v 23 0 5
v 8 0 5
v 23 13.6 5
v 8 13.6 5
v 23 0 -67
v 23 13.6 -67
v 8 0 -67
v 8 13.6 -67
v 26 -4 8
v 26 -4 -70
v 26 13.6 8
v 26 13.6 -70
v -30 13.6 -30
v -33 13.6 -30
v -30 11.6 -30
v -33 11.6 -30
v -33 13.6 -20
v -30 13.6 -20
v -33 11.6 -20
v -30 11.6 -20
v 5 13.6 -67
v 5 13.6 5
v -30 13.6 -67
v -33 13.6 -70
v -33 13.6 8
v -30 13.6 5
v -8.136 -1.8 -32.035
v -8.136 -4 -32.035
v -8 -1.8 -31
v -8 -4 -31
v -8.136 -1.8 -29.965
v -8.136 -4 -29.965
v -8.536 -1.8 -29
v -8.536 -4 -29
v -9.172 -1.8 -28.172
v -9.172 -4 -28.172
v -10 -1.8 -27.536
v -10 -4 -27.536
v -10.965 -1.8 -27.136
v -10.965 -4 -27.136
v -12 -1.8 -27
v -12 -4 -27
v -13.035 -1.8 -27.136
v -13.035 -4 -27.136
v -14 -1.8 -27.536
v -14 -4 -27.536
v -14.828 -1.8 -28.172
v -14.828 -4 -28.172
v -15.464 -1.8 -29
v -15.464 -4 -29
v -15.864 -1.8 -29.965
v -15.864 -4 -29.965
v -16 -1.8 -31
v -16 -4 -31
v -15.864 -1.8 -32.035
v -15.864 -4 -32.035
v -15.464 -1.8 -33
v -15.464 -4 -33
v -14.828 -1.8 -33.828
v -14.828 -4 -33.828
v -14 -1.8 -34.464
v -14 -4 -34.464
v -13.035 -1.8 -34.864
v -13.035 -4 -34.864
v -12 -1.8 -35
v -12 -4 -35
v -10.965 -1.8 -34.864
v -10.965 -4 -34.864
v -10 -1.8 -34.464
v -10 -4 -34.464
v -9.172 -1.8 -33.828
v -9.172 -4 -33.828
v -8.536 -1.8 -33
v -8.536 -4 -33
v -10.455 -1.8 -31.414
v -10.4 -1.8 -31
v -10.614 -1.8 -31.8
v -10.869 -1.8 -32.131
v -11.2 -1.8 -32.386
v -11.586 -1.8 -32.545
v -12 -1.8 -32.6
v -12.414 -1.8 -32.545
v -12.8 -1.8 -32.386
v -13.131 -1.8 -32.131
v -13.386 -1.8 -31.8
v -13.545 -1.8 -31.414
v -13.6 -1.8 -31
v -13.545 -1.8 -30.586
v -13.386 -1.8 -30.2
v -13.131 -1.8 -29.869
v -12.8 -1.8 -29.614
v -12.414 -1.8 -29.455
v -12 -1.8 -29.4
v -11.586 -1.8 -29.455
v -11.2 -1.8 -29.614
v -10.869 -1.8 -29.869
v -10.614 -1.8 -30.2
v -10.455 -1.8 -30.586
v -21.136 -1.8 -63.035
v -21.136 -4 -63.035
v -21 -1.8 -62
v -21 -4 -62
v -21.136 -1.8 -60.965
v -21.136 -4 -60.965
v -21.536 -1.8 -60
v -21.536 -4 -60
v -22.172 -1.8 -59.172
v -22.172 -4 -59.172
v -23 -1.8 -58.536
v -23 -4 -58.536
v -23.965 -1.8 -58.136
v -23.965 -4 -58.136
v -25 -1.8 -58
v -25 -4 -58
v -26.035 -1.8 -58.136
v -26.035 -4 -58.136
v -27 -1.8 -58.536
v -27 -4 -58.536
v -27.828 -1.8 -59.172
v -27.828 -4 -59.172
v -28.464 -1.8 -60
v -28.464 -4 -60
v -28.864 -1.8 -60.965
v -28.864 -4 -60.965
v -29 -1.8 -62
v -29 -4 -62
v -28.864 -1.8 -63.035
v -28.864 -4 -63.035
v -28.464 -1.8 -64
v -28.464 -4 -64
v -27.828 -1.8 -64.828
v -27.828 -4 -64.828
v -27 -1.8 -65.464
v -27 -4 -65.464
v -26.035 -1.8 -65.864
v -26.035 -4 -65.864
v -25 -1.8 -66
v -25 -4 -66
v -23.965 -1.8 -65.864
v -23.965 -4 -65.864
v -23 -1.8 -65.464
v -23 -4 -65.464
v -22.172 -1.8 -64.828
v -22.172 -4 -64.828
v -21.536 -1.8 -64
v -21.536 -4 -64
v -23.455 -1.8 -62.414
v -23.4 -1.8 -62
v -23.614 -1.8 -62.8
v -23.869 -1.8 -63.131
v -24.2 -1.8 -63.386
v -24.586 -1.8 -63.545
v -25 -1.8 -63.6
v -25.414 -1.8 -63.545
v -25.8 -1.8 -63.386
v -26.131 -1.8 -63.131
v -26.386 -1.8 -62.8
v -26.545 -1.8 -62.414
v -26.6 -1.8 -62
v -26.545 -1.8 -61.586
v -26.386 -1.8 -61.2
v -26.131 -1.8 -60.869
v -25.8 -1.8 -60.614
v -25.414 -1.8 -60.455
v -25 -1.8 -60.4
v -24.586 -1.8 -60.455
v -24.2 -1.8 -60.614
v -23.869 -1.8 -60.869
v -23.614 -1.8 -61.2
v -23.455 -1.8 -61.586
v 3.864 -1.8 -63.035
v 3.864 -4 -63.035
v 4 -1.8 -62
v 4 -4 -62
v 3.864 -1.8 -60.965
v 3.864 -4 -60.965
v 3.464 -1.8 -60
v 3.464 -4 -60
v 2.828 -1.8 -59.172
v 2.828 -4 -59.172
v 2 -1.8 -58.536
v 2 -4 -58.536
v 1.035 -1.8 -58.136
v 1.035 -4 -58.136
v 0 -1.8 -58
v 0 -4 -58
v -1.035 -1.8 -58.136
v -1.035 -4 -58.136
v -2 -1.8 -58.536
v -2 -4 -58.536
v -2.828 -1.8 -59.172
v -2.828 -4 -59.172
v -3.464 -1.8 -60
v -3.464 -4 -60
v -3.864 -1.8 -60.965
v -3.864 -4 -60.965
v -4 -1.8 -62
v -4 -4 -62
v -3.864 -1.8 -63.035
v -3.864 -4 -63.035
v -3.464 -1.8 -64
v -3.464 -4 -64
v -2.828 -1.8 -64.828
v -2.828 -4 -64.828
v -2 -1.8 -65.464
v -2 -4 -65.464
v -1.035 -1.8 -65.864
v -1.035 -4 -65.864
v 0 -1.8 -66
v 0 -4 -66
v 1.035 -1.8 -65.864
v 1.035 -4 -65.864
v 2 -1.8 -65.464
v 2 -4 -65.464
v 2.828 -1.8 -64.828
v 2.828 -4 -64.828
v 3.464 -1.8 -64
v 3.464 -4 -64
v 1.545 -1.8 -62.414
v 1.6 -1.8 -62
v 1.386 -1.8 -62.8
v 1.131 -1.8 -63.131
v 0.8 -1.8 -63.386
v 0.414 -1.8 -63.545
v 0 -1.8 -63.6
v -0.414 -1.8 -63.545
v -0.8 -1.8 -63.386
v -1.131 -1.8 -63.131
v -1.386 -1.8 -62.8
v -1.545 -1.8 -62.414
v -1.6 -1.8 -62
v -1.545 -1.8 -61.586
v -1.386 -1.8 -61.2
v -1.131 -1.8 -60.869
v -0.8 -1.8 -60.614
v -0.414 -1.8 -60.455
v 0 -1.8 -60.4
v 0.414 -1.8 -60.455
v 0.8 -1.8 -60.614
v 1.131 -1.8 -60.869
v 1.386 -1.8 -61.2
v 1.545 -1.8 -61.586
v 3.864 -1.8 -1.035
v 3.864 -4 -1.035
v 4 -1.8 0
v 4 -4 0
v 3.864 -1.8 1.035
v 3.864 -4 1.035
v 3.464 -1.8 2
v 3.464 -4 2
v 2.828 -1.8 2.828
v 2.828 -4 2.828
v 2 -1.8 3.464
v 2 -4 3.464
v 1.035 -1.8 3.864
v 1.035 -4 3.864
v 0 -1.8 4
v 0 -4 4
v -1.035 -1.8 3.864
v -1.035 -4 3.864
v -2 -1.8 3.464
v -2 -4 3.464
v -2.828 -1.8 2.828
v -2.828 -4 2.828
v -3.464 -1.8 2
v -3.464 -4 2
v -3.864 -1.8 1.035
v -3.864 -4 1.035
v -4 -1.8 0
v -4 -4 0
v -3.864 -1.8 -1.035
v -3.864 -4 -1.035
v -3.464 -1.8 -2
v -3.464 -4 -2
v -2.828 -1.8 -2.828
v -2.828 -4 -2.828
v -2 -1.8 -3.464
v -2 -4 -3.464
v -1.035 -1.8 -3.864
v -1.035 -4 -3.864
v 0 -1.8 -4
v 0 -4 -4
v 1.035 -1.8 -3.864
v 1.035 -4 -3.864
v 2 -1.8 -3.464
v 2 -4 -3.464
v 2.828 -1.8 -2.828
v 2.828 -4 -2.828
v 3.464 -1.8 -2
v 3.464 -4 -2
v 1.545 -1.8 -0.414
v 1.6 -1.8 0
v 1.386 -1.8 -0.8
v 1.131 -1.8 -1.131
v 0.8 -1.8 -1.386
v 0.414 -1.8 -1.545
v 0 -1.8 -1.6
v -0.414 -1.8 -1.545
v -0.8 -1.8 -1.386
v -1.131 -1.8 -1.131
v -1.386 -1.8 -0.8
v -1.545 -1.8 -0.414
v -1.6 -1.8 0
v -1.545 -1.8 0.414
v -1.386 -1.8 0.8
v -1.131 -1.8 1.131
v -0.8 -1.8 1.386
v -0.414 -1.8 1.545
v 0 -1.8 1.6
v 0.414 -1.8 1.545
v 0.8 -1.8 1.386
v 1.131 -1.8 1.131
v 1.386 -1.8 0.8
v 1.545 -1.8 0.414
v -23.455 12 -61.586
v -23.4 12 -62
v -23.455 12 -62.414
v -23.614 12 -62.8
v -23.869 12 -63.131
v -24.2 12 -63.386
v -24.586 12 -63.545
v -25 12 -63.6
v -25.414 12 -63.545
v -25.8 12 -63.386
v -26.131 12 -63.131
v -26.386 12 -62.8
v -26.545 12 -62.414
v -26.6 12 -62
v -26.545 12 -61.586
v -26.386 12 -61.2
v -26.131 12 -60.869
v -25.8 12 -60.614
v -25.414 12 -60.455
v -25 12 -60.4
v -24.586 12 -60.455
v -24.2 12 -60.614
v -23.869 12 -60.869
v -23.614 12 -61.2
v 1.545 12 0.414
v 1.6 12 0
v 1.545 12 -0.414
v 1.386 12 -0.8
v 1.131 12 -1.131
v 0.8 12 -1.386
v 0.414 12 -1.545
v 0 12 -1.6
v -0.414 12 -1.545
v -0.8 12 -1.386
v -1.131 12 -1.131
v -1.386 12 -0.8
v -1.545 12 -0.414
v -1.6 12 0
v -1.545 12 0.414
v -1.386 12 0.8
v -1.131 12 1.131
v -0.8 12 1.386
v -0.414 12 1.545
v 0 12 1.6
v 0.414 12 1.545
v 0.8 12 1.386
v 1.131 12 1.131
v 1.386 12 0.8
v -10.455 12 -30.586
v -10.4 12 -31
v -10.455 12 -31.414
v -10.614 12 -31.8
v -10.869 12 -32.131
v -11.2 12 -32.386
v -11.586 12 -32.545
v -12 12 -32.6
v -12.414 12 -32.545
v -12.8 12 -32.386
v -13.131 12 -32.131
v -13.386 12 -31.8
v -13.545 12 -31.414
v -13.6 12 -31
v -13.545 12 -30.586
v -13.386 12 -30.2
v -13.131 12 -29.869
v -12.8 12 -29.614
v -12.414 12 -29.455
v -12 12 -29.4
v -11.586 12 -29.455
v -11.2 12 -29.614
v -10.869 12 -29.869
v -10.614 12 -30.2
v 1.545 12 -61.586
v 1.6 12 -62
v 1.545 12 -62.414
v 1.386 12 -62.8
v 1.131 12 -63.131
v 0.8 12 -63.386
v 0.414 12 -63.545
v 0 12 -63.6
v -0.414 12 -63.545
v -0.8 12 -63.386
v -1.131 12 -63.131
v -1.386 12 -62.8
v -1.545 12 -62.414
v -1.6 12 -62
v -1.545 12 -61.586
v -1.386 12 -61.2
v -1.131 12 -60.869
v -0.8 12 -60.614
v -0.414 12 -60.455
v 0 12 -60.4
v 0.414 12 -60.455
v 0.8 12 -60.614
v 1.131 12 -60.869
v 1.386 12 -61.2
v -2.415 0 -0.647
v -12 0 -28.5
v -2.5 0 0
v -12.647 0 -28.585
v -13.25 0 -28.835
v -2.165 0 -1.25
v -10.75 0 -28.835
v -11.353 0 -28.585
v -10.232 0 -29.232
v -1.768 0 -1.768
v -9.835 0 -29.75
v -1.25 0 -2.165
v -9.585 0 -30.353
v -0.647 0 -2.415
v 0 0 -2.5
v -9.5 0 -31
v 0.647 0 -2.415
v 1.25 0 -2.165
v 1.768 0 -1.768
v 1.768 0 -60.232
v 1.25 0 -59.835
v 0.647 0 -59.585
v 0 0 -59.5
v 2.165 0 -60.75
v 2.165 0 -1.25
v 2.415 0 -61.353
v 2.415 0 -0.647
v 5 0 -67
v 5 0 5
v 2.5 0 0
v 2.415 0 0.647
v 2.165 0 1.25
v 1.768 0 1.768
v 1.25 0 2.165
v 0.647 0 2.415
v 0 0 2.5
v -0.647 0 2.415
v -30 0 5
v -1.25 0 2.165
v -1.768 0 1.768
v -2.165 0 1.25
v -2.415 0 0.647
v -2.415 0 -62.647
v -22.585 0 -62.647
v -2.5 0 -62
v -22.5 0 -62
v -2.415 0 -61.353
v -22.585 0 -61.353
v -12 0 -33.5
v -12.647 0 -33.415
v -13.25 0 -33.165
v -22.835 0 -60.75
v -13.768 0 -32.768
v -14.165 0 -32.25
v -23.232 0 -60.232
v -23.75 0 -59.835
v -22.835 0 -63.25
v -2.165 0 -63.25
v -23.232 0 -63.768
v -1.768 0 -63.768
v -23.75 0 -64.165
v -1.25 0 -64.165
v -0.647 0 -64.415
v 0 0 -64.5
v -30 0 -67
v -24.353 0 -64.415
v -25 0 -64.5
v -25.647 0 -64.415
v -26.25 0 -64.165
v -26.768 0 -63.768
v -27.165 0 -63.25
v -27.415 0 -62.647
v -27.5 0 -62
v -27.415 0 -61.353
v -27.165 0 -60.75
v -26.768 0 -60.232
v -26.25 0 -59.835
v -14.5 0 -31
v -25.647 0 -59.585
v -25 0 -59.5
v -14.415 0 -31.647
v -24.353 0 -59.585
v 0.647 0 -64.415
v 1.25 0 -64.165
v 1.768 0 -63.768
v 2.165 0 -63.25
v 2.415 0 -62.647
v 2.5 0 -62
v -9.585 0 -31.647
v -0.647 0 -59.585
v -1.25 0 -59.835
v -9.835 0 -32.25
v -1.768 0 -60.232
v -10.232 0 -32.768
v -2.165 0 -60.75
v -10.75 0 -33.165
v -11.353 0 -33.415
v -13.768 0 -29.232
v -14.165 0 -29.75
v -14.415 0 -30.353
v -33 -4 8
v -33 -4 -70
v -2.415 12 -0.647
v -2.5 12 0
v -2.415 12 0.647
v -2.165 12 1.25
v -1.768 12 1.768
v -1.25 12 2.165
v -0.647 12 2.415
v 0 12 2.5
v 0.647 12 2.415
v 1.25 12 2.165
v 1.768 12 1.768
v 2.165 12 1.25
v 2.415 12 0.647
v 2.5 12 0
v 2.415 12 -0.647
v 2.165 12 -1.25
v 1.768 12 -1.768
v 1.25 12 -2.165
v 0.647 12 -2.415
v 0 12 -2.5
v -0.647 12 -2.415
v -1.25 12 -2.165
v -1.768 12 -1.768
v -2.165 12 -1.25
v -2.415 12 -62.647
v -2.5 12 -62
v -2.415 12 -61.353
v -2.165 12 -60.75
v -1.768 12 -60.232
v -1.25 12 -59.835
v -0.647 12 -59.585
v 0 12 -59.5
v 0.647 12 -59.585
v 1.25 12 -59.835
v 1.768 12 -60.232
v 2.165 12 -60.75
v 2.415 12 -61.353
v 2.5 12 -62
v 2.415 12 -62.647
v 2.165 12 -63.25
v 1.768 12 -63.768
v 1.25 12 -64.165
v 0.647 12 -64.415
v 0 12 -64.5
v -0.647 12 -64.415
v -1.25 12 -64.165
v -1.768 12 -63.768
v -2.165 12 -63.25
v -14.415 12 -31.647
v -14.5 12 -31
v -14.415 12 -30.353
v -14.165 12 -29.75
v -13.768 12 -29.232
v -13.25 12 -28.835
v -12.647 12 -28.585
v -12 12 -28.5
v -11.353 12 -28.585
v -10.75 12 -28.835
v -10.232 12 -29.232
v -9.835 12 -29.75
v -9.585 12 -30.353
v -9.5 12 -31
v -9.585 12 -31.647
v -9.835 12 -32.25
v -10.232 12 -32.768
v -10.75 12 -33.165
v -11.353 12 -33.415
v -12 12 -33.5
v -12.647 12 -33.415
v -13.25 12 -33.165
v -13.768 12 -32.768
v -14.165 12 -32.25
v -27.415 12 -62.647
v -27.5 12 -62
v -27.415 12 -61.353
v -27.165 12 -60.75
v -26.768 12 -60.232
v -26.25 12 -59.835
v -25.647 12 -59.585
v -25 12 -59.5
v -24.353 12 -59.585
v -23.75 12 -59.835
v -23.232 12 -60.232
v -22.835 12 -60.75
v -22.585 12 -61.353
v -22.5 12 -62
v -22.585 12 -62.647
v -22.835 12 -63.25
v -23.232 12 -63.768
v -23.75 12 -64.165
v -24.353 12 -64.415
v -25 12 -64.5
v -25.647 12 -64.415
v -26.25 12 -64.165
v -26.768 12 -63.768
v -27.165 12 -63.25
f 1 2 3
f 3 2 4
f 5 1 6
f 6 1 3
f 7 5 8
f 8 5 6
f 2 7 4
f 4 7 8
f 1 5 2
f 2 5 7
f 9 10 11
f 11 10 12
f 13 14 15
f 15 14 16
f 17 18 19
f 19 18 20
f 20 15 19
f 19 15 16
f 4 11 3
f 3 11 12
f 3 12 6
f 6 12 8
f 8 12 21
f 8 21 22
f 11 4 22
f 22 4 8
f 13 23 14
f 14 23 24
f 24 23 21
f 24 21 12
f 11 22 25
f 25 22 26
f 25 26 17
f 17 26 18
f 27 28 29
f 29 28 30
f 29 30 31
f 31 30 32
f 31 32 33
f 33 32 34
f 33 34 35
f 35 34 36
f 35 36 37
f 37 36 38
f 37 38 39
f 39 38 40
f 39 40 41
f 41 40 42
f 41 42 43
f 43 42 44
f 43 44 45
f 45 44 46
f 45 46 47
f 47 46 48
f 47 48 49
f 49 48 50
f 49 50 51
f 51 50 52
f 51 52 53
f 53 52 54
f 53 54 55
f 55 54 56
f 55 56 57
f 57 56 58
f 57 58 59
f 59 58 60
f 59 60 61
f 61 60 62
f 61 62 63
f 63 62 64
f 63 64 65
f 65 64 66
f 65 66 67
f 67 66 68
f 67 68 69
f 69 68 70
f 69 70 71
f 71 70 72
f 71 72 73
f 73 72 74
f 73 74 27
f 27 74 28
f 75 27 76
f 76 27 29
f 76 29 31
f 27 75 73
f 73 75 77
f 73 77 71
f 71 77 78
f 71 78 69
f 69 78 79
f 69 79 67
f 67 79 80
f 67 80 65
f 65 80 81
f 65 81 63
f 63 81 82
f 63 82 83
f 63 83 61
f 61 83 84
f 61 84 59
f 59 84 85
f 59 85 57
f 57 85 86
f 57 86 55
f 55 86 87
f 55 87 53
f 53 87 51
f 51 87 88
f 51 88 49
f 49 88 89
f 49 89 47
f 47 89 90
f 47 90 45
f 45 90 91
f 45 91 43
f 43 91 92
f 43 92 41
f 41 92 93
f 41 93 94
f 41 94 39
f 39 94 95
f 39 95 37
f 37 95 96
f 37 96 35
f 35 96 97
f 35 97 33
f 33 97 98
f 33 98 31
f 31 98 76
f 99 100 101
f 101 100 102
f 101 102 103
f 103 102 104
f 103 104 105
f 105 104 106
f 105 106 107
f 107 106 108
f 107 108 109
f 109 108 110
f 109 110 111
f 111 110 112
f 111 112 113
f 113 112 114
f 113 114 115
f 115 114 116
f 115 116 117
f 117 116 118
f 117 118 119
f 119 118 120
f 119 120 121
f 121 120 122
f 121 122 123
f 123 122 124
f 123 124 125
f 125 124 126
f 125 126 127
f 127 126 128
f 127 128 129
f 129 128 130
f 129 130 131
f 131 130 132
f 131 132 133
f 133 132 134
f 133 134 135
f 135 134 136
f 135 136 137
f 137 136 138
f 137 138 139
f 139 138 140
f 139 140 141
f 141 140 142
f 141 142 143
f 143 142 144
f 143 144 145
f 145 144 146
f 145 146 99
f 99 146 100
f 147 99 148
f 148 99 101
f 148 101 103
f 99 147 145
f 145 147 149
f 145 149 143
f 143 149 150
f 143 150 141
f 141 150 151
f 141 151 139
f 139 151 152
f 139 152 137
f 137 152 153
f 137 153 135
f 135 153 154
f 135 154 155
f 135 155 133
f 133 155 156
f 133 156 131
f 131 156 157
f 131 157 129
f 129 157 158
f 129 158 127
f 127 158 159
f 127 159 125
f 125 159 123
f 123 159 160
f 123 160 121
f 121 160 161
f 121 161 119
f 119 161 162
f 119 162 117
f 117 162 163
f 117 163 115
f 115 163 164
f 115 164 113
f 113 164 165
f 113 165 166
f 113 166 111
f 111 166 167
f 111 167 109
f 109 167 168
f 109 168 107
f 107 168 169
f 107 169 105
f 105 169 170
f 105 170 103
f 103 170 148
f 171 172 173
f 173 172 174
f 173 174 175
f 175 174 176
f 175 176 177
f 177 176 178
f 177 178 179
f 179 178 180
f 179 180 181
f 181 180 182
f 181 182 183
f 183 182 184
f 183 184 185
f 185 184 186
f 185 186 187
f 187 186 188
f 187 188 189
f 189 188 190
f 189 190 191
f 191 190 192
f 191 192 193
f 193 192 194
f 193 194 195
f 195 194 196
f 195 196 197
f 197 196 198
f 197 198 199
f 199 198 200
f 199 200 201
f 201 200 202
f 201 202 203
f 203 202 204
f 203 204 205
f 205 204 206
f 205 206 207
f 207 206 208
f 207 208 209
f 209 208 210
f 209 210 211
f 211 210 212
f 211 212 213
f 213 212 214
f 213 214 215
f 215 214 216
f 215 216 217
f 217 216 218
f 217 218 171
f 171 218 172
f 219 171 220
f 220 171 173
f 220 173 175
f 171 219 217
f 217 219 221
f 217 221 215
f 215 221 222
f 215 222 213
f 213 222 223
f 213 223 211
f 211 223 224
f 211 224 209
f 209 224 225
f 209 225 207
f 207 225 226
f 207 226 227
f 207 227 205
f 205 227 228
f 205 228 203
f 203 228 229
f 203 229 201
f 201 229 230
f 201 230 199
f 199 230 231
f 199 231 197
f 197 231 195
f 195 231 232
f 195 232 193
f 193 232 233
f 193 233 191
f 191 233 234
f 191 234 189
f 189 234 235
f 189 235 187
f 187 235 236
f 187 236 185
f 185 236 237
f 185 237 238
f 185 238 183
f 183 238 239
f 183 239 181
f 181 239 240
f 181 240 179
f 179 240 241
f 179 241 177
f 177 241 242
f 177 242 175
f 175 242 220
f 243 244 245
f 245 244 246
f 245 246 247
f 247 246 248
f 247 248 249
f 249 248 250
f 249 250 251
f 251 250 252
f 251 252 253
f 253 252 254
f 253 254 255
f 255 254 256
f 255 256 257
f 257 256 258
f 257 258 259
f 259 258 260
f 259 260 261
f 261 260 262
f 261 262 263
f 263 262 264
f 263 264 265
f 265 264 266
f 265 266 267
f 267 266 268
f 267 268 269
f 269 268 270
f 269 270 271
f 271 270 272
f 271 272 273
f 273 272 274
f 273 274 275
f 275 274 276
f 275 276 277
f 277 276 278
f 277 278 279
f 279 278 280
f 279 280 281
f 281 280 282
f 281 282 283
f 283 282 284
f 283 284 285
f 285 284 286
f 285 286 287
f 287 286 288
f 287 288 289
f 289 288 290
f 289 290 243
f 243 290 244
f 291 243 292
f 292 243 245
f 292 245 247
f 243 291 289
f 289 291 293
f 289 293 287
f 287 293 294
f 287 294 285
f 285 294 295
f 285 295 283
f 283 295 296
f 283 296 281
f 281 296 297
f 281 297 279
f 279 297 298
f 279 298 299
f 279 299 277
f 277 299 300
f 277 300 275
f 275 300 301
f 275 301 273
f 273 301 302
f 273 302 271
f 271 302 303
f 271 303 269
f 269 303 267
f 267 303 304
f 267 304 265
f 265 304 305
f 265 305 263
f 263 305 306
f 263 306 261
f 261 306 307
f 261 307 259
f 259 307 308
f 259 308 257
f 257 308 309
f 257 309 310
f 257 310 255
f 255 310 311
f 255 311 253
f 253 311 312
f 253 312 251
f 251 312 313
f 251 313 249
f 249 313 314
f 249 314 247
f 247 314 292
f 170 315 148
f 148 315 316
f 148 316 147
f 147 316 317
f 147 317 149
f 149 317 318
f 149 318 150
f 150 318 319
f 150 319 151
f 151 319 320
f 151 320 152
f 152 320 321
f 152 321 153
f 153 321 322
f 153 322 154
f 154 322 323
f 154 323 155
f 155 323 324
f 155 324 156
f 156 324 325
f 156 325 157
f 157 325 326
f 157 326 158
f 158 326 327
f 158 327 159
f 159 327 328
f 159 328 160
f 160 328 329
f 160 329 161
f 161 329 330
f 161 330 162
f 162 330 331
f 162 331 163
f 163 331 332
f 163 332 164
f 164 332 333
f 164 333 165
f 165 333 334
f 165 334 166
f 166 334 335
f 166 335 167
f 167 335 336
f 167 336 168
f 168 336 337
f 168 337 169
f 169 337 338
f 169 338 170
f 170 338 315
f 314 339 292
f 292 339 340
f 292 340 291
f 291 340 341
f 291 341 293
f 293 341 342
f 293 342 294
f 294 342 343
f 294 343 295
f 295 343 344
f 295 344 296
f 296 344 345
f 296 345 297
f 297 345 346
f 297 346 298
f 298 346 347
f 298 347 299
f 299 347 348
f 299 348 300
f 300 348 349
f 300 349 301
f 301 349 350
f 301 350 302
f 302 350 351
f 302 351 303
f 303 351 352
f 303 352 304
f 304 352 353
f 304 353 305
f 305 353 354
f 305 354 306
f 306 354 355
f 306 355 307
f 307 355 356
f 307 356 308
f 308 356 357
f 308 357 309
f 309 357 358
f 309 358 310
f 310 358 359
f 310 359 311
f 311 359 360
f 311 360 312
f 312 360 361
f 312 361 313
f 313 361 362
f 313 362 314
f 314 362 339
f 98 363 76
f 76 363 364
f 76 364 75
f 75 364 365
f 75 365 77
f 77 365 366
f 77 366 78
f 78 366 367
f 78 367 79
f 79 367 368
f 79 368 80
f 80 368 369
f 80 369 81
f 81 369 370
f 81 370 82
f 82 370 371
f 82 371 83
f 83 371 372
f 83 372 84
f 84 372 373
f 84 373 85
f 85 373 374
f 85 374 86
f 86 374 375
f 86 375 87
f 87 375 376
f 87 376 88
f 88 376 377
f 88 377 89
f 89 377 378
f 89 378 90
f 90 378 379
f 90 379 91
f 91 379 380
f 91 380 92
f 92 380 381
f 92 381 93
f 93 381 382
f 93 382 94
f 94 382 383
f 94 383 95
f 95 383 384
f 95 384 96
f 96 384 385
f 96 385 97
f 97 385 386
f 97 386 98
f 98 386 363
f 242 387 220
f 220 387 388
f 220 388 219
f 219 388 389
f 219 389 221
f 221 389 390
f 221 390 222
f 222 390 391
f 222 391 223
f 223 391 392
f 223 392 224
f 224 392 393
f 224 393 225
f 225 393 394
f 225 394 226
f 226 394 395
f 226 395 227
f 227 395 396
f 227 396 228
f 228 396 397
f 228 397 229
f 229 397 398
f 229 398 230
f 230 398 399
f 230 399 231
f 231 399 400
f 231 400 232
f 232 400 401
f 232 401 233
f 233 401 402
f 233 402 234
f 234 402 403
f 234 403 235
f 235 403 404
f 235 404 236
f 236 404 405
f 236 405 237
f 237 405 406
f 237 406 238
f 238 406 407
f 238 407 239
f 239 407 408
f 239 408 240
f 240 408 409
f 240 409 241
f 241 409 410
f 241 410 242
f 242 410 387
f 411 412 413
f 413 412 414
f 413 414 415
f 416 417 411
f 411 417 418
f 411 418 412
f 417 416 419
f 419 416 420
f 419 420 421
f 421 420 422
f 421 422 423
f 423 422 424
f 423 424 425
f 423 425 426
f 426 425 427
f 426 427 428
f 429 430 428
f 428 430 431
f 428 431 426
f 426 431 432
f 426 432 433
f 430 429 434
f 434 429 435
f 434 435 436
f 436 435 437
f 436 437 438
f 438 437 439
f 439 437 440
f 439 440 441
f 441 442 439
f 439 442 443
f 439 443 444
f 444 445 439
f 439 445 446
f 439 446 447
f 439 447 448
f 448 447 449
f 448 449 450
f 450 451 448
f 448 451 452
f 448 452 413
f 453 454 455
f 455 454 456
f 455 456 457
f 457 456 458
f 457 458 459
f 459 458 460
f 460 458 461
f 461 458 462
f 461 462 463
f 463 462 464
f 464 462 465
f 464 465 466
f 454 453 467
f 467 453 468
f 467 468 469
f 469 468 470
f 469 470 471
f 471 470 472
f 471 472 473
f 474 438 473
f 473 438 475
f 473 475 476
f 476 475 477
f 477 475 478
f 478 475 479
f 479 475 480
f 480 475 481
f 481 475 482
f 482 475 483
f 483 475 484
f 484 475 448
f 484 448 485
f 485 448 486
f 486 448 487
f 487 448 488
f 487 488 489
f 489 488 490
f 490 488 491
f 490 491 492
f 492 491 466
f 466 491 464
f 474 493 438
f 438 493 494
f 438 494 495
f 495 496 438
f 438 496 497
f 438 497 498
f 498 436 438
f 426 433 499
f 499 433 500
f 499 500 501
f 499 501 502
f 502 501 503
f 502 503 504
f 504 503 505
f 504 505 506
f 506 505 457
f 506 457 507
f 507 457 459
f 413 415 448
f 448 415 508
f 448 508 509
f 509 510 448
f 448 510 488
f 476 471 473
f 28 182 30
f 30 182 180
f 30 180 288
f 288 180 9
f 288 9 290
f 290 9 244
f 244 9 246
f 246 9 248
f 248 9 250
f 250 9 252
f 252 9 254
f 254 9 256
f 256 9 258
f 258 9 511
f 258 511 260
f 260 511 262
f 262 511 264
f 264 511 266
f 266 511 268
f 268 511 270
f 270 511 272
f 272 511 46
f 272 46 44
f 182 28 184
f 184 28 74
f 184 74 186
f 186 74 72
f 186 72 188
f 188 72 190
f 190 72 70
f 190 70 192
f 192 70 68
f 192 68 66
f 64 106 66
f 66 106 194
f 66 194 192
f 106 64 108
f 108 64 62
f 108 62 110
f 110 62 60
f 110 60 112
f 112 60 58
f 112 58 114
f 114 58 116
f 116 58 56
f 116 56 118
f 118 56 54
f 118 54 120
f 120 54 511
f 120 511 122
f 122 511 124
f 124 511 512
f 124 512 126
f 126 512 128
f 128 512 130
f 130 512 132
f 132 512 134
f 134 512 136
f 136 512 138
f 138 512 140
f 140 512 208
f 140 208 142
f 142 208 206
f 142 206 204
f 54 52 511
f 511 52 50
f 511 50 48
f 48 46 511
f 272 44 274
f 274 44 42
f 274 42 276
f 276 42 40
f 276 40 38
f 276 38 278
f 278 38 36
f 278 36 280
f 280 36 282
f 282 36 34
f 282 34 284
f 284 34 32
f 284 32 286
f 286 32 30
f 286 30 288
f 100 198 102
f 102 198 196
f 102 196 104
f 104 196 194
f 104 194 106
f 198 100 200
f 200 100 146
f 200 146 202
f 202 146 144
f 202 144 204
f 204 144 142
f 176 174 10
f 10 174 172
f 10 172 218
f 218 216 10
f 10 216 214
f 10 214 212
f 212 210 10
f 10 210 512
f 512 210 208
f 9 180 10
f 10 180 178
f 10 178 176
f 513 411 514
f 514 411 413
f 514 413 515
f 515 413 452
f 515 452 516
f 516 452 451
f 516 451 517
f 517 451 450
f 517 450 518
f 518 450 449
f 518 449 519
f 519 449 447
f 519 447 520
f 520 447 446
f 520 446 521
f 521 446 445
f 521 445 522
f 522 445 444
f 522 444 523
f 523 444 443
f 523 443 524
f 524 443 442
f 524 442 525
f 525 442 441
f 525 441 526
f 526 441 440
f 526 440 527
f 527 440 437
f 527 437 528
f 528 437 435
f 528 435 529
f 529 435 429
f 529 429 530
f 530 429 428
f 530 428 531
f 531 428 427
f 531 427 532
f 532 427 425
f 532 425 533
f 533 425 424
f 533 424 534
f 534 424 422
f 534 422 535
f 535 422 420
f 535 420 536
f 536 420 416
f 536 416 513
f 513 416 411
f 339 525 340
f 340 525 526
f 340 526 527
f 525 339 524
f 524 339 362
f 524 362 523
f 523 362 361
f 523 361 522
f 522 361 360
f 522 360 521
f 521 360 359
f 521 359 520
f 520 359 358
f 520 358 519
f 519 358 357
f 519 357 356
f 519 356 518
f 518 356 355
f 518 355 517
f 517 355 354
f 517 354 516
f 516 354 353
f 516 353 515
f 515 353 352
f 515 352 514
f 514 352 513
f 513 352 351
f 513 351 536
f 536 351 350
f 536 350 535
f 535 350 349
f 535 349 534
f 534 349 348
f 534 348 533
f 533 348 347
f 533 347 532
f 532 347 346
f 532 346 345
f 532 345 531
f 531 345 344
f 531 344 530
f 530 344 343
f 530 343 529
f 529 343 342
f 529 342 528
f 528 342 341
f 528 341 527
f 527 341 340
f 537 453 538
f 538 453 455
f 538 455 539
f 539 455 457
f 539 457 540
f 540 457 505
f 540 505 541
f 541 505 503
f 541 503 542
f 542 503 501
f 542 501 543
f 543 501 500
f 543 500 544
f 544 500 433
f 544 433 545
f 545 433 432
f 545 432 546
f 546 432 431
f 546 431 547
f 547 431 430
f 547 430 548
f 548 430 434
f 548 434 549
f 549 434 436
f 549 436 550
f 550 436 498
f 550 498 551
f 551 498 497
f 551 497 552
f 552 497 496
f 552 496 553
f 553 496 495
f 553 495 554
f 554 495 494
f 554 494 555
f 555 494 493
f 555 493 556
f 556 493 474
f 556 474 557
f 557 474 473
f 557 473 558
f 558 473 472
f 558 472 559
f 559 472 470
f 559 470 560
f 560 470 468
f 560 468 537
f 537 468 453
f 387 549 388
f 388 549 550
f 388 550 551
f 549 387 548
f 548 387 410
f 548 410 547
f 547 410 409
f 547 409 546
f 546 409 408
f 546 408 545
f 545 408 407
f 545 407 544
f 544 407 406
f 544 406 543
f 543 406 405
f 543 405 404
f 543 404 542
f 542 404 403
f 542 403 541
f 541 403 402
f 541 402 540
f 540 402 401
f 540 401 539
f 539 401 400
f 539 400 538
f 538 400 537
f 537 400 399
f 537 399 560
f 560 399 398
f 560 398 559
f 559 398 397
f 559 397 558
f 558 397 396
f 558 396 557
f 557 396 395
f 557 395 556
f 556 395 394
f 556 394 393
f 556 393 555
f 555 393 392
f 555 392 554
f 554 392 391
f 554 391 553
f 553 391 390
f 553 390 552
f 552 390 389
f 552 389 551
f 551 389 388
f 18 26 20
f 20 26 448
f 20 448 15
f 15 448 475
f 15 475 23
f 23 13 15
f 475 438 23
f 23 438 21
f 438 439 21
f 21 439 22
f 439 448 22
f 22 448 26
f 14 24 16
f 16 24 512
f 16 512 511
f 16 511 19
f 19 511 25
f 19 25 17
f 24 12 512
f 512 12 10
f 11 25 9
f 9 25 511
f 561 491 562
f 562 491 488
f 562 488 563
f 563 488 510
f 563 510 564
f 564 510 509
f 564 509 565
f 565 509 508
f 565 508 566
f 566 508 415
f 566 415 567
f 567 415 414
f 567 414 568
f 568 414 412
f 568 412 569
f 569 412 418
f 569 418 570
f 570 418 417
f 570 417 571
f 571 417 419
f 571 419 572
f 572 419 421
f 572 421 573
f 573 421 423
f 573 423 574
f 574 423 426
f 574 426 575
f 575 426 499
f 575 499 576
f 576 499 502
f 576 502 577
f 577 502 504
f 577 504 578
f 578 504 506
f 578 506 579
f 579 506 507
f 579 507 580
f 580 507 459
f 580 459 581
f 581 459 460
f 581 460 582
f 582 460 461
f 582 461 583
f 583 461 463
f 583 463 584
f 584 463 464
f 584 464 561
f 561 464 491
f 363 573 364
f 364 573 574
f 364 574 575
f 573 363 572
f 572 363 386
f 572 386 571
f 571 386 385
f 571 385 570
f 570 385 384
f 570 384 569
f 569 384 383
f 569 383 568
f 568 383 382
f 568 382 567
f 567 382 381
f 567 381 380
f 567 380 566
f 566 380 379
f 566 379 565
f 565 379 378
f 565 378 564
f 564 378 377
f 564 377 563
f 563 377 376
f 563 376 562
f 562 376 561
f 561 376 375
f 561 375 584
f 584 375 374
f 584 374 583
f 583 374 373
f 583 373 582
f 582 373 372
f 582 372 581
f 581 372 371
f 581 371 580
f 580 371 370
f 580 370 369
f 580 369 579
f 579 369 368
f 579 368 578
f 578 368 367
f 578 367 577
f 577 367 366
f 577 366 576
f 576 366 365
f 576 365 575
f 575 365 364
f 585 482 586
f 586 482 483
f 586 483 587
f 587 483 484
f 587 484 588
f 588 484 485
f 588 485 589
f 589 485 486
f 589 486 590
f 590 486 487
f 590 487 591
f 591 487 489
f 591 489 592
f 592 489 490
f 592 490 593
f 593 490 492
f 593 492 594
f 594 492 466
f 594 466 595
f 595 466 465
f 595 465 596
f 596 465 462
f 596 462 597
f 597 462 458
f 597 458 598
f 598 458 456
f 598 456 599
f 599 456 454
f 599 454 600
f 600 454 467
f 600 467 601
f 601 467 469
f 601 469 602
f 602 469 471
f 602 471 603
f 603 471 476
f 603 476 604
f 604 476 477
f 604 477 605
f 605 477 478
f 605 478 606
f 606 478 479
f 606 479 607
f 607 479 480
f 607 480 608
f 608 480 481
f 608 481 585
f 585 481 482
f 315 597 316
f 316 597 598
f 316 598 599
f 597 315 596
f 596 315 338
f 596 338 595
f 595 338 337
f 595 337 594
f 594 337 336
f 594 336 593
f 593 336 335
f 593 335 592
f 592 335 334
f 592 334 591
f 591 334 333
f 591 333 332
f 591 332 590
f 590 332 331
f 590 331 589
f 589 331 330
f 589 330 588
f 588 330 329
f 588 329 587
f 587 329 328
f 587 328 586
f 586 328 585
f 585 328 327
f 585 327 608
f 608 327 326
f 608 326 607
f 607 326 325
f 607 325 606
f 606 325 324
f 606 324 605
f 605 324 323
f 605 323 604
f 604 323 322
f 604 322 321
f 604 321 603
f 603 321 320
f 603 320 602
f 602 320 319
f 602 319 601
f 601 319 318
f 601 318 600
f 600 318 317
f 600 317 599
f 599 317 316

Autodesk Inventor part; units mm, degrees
ref_plane "YZ Plane" through (0, 0, 0) normal (1, 0, 0) x (0, 1, 0)
ref_plane "XZ Plane" through (0, 0, 0) normal (0, 1, 0) x (-1, 0, 0)
ref_plane "XY Plane" through (0, 0, 0) normal (0, 0, 1) x (1, 0, 0)
sketch "Sketch1" plane through (0, 0, 0) normal (0, 1, 0) x (-1, 0, 0)
  circle A0 centre (0, 0) radius 1.6
  circle A1 centre (0, -62) radius 1.6
  circle A2 centre (25, -62) radius 1.6
  circle A3 centre (12, -31) radius 1.6
  circle A4 centre (12, -31) radius 2.5
  circle A5 centre (0, -62) radius 2.5
  circle A6 centre (25, -62) radius 2.5
  circle A7 centre (0, 0) radius 2.5
  line L0 (30, 5) -> (-5, 5)
  line L1 (-5, 5) -> (-5, -67)
  line L2 (-5, -67) -> (30, -67)
  line L3 (30, -67) -> (30, 5)
  line L4 (33, 8) -> (-8, 8)
  line L5 (-8, 8) -> (-8, -70)
  line L6 (-8, -70) -> (33, -70)
  line L7 (33, -70) -> (33, 8)
  dimension "d0" = 3.2
  dimension "d1" = 3.2
  dimension "d2" = 62
  dimension "d3" = 3.2
  dimension "d4" = 25
  dimension "d5" = 3.2
  dimension "d6" = 31
  dimension "d7" = 12
  dimension "d8" = 5
  dimension "d9" = 5
  dimension "d10" = 5
  dimension "d11" = 5
  dimension "d12" = 5
  dimension "d13" = 5
  dimension "d14" = 5
  dimension "d15" = 5
  dimension "d16" = 3
  dimension "d17" = 3
  dimension "d18" = 3
  dimension "d19" = 3
  dimension "d29" = 0
extrude "Extrusion1" add sketch "Sketch1" along normal blind 12
sketch "Sketch2" plane through (0, 0, 0) normal (0, -1, 0) x (1, 0, 0)
  line L0 (-33, 8) -> (8, 8) projected
  line L1 (-33, -70) -> (-33, 8) projected
  line L2 (8, 8) -> (-33, 8)
  line L3 (-33, 8) -> (-33, -70)
  line L4 (-33, -70) -> (8, -70)
  line L5 (8, -70) -> (8, 8)
  point P0 (0, 0)
extrude "Extrusion2" add sketch "Sketch2" along normal blind 4
sketch "Sketch3" plane through (0, 12, 0) normal (0, 1, 0) x (1, 0, 0)
  circle A0 centre (0, 0) radius 1.6 projected
  circle A1 centre (-12, 31) radius 1.6 projected
  circle A2 centre (-25, 62) radius 1.6 projected
  circle A3 centre (0, 62) radius 1.6 projected
extrude "Extrusion3" cut sketch "Sketch3" against normal up to next
sketch "Sketch4" plane through (0, -4, 0) normal (0, -1, 0) x (1, 0, 0)
  circle A0 centre (-25, -62) radius 1.6 projected
  circle A1 centre (-25, -62) radius 4
  circle A2 centre (0, -62) radius 1.6 projected
  circle A3 centre (0, -62) radius 4
  circle A4 centre (-12, -31) radius 1.6 projected
  circle A5 centre (-12, -31) radius 4
  circle A6 centre (0, 0) radius 1.6 projected
  circle A7 centre (0, 0) radius 4
  dimension "d26" = 8
  dimension "d27" = 8
  dimension "d28" = 8
  dimension "d30" = 8
extrude "Extrusion4" cut sketch "Sketch4" against normal blind 2.2
sketch "Sketch6" plane through (0, 12, 0) normal (0, 1, 0) x (1, 0, 0)
  line L0 (-33, 70) -> (-33, -8) projected
  line L1 (8, 70) -> (-33, 70) projected
  line L2 (8, -8) -> (8, 70) projected
  line L3 (-33, -8) -> (8, -8) projected
  line L4 (-30, -5) -> (-30, 67) projected
  line L5 (5, -5) -> (-30, -5) projected
  line L6 (5, 67) -> (5, -5) projected
  line L7 (-30, 67) -> (5, 67) projected
  point P0 (0, 0)
extrude "Extrusion5" add sketch "Sketch6" along normal blind 1.6
sketch "Sketch7" plane through (0, 13.6, 0) normal (0, 1, 0) x (1, 0, 0)
  line L0 (-33, 70) -> (-33, -8) projected
  line L1 (-30, 67) -> (-30, -5) projected
  line L2 (-33, 20) -> (-30, 20)
  line L3 (-30, 20) -> (-30, 30)
  line L4 (-30, 30) -> (-33, 30)
  line L5 (-33, 30) -> (-33, 20)
  point P0 (0, 0)
  dimension "d35" = 20
  dimension "d36" = 10
extrude "Extrusion6" cut sketch "Sketch7" against normal blind 2
sketch "Sketch8" plane through (8, -4, 8) normal (1, 0, 0) x (0, 0, -1)
  line L0 (78, 17.6) -> (38, 17.6) projected
  line L1 (0, 0) -> (78, 0)
  line L2 (78, 0) -> (78, 17.6)
  line L3 (78, 17.6) -> (0, 17.6)
  line L4 (0, 17.6) -> (0, 0)
  point P0 (8, 4)
extrude "Extrusion7" add sketch "Sketch8" along normal blind 18
sketch "Sketch9" plane through (0, 13.6, 0) normal (0, 1, 0) x (1, 0, 0)
  line L0 (8, -5) -> (23, -5)
  line L1 (23, -5) -> (23, 67)
  line L2 (23, 67) -> (8, 67)
  line L3 (8, 67) -> (8, -5)
  line L4 (5, 67) -> (5, -5) projected
  line L5 (26, 70) -> (26, -8) projected
  line L6 (-33, 70) -> (26, 70) projected
  point P0 (0, 0)
  dimension "d41" = 3
  dimension "d42" = 3
  dimension "d43" = 3
extrude "Extrusion8" cut sketch "Sketch9" against normal up to surface (13.6 mm away)
properties part number "Housing Base"
